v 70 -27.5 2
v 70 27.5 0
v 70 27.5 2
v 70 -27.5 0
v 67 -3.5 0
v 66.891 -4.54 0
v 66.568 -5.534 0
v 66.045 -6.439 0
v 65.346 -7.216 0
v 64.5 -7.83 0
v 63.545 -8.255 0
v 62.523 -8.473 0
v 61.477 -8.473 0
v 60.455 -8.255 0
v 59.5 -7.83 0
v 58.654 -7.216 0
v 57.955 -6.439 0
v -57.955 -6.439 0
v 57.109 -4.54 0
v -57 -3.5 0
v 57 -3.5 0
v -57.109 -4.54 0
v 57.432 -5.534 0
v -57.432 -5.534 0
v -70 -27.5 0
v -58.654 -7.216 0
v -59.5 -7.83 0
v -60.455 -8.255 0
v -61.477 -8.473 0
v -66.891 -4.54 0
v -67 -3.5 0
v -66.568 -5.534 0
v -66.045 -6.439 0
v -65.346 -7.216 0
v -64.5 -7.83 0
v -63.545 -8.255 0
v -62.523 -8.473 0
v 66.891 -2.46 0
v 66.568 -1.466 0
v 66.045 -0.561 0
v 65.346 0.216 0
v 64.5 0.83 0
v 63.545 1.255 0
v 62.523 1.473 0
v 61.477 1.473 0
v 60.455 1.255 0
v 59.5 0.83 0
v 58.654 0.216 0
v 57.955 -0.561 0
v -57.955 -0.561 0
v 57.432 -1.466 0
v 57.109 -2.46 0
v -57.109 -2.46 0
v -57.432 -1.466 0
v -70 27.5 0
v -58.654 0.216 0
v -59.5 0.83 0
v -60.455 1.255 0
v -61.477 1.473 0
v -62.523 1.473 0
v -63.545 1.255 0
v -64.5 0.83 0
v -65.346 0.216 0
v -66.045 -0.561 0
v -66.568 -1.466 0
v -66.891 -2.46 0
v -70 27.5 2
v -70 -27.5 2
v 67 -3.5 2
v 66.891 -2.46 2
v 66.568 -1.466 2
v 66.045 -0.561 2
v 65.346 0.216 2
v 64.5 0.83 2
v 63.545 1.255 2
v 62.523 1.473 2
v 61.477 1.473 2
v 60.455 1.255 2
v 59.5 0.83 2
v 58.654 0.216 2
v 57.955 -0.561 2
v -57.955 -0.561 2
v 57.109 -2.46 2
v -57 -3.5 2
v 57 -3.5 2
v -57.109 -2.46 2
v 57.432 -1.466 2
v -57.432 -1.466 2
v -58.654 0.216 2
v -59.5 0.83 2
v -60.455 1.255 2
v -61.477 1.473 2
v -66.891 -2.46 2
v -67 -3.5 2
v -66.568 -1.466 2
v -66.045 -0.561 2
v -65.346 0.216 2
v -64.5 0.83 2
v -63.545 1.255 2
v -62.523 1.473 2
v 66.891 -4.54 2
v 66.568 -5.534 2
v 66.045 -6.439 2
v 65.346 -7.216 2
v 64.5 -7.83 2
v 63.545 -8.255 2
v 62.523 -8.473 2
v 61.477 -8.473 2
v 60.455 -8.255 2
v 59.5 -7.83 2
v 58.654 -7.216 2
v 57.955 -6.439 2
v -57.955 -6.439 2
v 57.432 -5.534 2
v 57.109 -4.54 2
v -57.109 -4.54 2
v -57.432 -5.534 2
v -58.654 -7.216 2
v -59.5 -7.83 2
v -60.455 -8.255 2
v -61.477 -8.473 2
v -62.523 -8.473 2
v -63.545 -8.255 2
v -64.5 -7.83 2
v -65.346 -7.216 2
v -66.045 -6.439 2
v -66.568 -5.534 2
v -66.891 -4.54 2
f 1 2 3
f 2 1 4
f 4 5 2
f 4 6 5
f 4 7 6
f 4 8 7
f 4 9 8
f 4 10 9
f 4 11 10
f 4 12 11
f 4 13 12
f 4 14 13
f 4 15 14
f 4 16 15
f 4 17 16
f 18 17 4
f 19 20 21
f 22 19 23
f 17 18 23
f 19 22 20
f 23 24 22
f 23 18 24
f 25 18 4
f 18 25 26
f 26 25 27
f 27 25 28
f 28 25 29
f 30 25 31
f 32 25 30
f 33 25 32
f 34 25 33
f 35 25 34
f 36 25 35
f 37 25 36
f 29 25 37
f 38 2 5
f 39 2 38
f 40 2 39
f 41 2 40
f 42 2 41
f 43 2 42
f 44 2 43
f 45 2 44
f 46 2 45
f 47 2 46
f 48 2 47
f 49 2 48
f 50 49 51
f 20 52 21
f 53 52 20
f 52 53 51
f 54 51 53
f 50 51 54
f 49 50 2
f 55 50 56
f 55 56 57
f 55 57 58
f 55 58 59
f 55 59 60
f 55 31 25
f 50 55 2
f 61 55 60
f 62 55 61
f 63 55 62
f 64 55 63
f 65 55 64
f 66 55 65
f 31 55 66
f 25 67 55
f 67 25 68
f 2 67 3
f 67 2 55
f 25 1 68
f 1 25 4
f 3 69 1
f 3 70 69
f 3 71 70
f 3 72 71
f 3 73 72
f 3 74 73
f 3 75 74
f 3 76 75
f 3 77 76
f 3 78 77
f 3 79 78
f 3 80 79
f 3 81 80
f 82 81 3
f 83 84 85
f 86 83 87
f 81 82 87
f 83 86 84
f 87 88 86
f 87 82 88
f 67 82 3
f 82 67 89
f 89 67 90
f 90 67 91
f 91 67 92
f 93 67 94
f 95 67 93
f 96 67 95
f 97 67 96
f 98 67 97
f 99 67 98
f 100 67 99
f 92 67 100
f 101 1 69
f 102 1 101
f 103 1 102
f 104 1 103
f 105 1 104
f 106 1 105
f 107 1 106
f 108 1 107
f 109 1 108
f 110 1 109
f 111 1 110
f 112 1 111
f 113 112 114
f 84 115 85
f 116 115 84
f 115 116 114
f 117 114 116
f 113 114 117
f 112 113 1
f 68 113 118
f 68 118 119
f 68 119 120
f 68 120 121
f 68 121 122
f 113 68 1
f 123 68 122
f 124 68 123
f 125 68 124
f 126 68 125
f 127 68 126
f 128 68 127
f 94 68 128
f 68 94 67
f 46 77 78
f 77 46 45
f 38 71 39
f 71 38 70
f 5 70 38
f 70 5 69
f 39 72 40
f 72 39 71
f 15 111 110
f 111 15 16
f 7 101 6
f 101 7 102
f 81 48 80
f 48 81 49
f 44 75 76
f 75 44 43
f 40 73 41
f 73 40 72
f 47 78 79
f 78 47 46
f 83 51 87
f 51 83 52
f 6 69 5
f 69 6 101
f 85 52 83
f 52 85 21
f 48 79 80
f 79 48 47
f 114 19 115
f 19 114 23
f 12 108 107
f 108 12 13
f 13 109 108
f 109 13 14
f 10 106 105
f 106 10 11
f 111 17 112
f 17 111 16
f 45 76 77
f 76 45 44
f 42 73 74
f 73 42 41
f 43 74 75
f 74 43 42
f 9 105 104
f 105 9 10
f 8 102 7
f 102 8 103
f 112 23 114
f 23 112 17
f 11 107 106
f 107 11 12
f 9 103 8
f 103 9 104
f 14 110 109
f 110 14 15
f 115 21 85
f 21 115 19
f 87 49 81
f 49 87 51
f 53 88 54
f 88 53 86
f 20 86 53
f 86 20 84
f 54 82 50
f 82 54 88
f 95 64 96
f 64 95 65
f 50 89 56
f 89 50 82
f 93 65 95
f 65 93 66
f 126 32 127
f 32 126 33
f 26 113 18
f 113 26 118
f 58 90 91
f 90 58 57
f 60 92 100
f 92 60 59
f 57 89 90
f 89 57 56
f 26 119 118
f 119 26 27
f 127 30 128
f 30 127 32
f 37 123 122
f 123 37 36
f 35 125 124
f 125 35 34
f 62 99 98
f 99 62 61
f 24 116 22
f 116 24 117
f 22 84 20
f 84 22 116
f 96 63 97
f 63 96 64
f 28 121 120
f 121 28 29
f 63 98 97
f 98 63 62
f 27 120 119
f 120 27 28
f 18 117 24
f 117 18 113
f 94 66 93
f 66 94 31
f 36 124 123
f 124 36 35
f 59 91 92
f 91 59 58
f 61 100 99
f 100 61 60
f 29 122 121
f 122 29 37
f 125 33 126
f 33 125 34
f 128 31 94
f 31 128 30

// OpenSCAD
// Define variables for the dimensions and hole positions in millimeters
box_length = 140;
box_width = 55;
box_height = 20;

inside_box_length = box_length - 4;
inside_box_width = box_width - 4;
inside_box_height = box_height - 2;

usb_port_length = 16;
usb_port_width = 2;
usb_port_height = 8;

rca_hole_diameter = 9;
jack_hole_diameter = 7;


module custom_cylinder(translated_position_X, translated_position_Y,translated_position_Z,input_diameter) {
    translate([translated_position_X, translated_position_Y, translated_position_Z]){ 
        rotate([90,0,0]){
            cylinder(d=input_diameter, h=2, $fn=30);
        }
    }
}
module custom_cylinder_switch(translated_position_X, translated_position_Y,translated_position_Z) {
    translate([translated_position_X, translated_position_Y, translated_position_Z]){ 
        rotate([0,0,0]){
            cylinder(d=7, h=2, $fn=30);
        }
    }
}
module support_board(translated_position_X, translated_position_Y,translated_position_Z) {
    translate([translated_position_X, translated_position_Y, translated_position_Z]){ 
        difference(){
            cylinder(d=10, h=9, $fn=30);
            //cylinder(d=4, h=9, $fn=30);

        }
    }
}

module usb_port(translated_position_X, translated_position_Y,translated_position_Z) {
    translate([translated_position_X, translated_position_Y, translated_position_Z]){ 
            cube([usb_port_length, usb_port_width, usb_port_height]);}        
}

module main(){
    difference(){
        
    translate([-box_length/2,-box_width/2,0]){
            cube([box_length, box_width, box_height]);}
    translate([-box_length/2,-box_width/2,box_height-inside_box_height]){
            cube([box_length, box_width, box_height]);}
        //cube([inside_box_length, inside_box_width, inside_box_height]);}
        //custom_cylinder(box_length/2-20,box_width/2,box_height/2,rca_hole_diameter);
        //custom_cylinder(-box_length/2+20,box_width/2,box_height/2,rca_hole_diameter);
        //usb_port(box_length/2-(usb_port_length+15),-box_width/2,rca_hole_diameter);
        //usb_port(box_length/2-(usb_port_length+15)-20,-box_width/2,9);
        //usb_port(box_length/2-(usb_port_length+15)-40,-box_width/2,9);
        //usb_port(box_length/2-(usb_port_length+15)-60,-box_width/2,9);
        //custom_cylinder(box_length/2-(usb_port_length+15)-73,-box_width/2,9+(usb_port_height/2),jack_hole_diameter);
        //custom_cylinder(box_length/2-(usb_port_length+15)-88,-box_width/2,9+(usb_port_height/2),jack_hole_diameter); 
        //custom_cylinder_switch(box_length/2-30,box_width/2-17,0);
        //custom_cylinder_switch(-(box_length/2-30),box_width/2-17,0);
    
        }
 
}
    
difference(){
main();
support_board(box_length/2-8,(-box_width/2)+24,0);
support_board(-(box_length/2-8),(-box_width/2)+24,0);
}
